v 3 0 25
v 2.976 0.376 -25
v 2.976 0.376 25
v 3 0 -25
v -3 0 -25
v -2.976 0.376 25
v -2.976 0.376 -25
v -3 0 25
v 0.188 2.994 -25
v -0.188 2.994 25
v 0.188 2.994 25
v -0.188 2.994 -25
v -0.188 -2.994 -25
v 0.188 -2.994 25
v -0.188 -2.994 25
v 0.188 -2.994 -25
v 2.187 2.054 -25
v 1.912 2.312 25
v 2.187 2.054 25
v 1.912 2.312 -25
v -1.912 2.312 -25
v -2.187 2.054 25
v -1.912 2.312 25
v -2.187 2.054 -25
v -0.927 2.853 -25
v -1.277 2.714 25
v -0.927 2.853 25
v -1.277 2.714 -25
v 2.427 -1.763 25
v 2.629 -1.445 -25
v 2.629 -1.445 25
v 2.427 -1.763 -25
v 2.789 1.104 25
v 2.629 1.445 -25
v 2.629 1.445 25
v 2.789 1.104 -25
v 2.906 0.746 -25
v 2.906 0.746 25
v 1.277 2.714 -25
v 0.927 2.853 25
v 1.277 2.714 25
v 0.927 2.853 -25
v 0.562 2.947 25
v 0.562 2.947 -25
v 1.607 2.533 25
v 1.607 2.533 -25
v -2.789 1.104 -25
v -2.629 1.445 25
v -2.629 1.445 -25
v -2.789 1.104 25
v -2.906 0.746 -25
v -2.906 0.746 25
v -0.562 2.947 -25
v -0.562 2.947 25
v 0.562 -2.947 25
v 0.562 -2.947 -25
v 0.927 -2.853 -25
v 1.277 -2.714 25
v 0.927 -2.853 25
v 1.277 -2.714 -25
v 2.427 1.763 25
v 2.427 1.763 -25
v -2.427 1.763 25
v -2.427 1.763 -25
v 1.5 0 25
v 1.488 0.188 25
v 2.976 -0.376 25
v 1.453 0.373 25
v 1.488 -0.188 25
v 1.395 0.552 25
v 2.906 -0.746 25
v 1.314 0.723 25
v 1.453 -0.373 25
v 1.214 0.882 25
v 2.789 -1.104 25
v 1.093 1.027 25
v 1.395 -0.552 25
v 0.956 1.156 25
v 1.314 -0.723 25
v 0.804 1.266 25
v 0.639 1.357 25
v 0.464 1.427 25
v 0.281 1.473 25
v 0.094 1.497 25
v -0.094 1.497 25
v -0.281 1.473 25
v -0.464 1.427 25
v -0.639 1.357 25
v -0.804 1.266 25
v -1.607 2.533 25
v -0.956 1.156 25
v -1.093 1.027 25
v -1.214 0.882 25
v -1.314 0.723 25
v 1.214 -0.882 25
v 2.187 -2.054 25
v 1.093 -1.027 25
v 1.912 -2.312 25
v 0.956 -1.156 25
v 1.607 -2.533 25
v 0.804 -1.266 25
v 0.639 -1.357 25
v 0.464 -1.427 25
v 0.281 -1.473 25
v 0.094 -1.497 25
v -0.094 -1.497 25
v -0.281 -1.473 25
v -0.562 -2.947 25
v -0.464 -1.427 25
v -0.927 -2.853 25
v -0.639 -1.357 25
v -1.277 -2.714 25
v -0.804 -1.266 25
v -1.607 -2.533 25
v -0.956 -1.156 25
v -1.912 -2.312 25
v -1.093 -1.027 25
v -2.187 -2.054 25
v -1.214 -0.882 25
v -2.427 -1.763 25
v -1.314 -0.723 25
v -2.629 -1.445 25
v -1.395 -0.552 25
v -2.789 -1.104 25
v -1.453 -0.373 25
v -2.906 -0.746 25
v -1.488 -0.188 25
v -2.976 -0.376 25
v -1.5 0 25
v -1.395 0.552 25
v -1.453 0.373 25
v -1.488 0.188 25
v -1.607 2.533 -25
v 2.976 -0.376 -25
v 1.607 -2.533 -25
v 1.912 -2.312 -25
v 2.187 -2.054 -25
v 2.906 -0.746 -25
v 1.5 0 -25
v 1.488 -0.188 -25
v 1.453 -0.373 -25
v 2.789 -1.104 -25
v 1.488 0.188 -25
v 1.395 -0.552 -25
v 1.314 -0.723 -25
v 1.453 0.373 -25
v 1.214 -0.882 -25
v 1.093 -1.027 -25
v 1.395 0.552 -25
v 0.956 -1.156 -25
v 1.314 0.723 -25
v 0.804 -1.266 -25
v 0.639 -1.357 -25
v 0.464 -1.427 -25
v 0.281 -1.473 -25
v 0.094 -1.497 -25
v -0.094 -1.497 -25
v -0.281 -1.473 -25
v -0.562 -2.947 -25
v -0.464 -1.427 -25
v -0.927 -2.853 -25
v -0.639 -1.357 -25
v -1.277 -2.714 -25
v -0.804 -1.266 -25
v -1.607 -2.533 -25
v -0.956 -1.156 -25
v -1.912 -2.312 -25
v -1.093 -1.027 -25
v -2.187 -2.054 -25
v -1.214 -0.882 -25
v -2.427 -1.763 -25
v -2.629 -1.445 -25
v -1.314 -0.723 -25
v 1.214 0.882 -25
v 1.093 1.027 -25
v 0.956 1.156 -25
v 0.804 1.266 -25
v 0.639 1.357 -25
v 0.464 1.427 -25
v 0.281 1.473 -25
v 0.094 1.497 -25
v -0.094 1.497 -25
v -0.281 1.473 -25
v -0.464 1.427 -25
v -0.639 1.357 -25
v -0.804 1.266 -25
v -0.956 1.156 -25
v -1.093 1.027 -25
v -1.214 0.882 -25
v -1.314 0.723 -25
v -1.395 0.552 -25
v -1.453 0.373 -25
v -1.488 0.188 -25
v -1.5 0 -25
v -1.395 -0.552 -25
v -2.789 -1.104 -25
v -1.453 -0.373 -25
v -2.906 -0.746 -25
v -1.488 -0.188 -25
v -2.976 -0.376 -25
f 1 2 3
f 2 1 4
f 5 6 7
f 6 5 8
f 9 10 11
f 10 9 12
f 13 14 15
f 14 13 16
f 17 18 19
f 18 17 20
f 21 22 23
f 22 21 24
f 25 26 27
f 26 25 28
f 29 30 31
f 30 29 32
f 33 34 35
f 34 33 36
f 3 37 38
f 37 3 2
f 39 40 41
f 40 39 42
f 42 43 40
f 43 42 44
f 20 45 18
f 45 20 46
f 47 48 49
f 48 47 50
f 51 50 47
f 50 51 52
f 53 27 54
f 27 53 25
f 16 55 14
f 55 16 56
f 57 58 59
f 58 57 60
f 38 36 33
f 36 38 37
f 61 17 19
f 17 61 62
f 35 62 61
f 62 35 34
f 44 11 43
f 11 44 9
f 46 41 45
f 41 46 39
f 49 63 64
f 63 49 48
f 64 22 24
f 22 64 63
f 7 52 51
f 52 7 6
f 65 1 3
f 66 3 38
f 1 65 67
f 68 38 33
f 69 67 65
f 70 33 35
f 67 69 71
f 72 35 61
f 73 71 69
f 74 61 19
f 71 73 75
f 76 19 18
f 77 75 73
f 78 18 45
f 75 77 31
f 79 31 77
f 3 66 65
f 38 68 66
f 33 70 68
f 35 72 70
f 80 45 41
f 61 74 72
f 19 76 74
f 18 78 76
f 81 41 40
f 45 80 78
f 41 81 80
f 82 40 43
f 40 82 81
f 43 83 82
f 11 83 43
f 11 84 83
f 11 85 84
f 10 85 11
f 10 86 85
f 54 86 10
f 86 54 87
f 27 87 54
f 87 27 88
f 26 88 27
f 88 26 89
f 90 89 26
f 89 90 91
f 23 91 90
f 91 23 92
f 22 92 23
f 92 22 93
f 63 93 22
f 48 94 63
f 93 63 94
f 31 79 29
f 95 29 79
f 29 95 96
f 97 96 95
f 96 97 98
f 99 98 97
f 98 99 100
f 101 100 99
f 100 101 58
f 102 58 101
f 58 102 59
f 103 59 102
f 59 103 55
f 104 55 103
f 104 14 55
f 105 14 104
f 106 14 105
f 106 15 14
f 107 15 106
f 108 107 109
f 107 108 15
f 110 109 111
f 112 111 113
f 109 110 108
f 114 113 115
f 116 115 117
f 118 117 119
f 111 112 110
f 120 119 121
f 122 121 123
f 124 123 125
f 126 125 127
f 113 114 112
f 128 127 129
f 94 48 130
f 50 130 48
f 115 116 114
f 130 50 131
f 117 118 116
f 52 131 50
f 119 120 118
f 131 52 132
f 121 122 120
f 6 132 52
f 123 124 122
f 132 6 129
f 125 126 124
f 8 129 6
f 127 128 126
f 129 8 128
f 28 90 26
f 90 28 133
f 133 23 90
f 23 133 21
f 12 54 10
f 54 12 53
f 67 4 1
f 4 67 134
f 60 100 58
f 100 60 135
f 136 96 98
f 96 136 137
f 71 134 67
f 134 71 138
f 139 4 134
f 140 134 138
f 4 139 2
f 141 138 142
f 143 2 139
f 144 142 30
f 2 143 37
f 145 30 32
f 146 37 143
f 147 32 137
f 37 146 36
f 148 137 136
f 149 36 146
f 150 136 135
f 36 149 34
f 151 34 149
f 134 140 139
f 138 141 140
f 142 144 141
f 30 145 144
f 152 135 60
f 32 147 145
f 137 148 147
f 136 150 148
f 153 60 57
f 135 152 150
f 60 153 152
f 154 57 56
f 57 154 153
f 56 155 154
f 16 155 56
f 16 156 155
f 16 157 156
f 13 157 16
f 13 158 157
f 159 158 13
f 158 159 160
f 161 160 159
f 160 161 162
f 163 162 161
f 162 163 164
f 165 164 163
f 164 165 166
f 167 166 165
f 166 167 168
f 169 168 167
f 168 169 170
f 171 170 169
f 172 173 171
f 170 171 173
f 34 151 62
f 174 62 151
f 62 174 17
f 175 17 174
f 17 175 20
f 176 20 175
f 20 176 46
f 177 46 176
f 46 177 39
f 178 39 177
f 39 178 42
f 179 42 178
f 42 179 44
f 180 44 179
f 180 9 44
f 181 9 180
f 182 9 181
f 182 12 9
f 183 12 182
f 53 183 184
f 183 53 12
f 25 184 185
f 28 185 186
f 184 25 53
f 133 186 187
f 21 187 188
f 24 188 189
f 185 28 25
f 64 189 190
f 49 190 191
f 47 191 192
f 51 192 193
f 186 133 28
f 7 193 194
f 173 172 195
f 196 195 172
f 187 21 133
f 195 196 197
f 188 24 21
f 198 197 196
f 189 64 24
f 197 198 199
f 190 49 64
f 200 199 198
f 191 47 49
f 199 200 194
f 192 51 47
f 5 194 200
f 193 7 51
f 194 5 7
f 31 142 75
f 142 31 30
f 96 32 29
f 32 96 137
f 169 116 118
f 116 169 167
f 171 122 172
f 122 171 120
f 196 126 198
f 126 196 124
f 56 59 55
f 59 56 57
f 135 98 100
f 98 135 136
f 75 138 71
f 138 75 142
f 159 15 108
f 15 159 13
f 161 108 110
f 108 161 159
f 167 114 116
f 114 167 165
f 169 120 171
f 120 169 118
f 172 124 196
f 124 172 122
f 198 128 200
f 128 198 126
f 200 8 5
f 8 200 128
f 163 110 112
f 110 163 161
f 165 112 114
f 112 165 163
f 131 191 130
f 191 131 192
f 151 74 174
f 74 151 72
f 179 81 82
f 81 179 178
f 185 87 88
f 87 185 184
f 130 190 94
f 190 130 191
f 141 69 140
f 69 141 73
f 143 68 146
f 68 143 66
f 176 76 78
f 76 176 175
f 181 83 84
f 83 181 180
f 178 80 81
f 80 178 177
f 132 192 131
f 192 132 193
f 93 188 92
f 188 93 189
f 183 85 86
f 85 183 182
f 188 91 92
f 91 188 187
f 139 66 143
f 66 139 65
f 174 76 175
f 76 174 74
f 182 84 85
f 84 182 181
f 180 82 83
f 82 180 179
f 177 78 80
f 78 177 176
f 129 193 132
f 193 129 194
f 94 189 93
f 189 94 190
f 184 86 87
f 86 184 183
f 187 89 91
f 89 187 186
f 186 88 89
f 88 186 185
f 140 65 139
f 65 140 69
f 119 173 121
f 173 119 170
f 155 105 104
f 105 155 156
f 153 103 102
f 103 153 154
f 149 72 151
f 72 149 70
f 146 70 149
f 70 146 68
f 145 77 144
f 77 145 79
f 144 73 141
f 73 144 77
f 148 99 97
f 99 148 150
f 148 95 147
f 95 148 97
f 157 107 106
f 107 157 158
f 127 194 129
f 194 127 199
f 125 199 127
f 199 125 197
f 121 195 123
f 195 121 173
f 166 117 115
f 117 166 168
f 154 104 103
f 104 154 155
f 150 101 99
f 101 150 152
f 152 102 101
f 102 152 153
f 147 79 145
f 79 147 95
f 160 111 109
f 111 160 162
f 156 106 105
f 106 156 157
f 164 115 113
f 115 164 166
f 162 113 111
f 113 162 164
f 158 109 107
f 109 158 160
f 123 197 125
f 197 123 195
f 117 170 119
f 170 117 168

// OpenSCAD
$fn = 50;


difference() {
	union() {
		translate(v = [0, 0, -25.0000000000]) {
			cylinder(h = 50, r = 3.0000000000);
		}
	}
	union() {
		translate(v = [0, 0, -100.0000000000]) {
			cylinder(h = 200, r = 1.5000000000);
		}
	}
}
